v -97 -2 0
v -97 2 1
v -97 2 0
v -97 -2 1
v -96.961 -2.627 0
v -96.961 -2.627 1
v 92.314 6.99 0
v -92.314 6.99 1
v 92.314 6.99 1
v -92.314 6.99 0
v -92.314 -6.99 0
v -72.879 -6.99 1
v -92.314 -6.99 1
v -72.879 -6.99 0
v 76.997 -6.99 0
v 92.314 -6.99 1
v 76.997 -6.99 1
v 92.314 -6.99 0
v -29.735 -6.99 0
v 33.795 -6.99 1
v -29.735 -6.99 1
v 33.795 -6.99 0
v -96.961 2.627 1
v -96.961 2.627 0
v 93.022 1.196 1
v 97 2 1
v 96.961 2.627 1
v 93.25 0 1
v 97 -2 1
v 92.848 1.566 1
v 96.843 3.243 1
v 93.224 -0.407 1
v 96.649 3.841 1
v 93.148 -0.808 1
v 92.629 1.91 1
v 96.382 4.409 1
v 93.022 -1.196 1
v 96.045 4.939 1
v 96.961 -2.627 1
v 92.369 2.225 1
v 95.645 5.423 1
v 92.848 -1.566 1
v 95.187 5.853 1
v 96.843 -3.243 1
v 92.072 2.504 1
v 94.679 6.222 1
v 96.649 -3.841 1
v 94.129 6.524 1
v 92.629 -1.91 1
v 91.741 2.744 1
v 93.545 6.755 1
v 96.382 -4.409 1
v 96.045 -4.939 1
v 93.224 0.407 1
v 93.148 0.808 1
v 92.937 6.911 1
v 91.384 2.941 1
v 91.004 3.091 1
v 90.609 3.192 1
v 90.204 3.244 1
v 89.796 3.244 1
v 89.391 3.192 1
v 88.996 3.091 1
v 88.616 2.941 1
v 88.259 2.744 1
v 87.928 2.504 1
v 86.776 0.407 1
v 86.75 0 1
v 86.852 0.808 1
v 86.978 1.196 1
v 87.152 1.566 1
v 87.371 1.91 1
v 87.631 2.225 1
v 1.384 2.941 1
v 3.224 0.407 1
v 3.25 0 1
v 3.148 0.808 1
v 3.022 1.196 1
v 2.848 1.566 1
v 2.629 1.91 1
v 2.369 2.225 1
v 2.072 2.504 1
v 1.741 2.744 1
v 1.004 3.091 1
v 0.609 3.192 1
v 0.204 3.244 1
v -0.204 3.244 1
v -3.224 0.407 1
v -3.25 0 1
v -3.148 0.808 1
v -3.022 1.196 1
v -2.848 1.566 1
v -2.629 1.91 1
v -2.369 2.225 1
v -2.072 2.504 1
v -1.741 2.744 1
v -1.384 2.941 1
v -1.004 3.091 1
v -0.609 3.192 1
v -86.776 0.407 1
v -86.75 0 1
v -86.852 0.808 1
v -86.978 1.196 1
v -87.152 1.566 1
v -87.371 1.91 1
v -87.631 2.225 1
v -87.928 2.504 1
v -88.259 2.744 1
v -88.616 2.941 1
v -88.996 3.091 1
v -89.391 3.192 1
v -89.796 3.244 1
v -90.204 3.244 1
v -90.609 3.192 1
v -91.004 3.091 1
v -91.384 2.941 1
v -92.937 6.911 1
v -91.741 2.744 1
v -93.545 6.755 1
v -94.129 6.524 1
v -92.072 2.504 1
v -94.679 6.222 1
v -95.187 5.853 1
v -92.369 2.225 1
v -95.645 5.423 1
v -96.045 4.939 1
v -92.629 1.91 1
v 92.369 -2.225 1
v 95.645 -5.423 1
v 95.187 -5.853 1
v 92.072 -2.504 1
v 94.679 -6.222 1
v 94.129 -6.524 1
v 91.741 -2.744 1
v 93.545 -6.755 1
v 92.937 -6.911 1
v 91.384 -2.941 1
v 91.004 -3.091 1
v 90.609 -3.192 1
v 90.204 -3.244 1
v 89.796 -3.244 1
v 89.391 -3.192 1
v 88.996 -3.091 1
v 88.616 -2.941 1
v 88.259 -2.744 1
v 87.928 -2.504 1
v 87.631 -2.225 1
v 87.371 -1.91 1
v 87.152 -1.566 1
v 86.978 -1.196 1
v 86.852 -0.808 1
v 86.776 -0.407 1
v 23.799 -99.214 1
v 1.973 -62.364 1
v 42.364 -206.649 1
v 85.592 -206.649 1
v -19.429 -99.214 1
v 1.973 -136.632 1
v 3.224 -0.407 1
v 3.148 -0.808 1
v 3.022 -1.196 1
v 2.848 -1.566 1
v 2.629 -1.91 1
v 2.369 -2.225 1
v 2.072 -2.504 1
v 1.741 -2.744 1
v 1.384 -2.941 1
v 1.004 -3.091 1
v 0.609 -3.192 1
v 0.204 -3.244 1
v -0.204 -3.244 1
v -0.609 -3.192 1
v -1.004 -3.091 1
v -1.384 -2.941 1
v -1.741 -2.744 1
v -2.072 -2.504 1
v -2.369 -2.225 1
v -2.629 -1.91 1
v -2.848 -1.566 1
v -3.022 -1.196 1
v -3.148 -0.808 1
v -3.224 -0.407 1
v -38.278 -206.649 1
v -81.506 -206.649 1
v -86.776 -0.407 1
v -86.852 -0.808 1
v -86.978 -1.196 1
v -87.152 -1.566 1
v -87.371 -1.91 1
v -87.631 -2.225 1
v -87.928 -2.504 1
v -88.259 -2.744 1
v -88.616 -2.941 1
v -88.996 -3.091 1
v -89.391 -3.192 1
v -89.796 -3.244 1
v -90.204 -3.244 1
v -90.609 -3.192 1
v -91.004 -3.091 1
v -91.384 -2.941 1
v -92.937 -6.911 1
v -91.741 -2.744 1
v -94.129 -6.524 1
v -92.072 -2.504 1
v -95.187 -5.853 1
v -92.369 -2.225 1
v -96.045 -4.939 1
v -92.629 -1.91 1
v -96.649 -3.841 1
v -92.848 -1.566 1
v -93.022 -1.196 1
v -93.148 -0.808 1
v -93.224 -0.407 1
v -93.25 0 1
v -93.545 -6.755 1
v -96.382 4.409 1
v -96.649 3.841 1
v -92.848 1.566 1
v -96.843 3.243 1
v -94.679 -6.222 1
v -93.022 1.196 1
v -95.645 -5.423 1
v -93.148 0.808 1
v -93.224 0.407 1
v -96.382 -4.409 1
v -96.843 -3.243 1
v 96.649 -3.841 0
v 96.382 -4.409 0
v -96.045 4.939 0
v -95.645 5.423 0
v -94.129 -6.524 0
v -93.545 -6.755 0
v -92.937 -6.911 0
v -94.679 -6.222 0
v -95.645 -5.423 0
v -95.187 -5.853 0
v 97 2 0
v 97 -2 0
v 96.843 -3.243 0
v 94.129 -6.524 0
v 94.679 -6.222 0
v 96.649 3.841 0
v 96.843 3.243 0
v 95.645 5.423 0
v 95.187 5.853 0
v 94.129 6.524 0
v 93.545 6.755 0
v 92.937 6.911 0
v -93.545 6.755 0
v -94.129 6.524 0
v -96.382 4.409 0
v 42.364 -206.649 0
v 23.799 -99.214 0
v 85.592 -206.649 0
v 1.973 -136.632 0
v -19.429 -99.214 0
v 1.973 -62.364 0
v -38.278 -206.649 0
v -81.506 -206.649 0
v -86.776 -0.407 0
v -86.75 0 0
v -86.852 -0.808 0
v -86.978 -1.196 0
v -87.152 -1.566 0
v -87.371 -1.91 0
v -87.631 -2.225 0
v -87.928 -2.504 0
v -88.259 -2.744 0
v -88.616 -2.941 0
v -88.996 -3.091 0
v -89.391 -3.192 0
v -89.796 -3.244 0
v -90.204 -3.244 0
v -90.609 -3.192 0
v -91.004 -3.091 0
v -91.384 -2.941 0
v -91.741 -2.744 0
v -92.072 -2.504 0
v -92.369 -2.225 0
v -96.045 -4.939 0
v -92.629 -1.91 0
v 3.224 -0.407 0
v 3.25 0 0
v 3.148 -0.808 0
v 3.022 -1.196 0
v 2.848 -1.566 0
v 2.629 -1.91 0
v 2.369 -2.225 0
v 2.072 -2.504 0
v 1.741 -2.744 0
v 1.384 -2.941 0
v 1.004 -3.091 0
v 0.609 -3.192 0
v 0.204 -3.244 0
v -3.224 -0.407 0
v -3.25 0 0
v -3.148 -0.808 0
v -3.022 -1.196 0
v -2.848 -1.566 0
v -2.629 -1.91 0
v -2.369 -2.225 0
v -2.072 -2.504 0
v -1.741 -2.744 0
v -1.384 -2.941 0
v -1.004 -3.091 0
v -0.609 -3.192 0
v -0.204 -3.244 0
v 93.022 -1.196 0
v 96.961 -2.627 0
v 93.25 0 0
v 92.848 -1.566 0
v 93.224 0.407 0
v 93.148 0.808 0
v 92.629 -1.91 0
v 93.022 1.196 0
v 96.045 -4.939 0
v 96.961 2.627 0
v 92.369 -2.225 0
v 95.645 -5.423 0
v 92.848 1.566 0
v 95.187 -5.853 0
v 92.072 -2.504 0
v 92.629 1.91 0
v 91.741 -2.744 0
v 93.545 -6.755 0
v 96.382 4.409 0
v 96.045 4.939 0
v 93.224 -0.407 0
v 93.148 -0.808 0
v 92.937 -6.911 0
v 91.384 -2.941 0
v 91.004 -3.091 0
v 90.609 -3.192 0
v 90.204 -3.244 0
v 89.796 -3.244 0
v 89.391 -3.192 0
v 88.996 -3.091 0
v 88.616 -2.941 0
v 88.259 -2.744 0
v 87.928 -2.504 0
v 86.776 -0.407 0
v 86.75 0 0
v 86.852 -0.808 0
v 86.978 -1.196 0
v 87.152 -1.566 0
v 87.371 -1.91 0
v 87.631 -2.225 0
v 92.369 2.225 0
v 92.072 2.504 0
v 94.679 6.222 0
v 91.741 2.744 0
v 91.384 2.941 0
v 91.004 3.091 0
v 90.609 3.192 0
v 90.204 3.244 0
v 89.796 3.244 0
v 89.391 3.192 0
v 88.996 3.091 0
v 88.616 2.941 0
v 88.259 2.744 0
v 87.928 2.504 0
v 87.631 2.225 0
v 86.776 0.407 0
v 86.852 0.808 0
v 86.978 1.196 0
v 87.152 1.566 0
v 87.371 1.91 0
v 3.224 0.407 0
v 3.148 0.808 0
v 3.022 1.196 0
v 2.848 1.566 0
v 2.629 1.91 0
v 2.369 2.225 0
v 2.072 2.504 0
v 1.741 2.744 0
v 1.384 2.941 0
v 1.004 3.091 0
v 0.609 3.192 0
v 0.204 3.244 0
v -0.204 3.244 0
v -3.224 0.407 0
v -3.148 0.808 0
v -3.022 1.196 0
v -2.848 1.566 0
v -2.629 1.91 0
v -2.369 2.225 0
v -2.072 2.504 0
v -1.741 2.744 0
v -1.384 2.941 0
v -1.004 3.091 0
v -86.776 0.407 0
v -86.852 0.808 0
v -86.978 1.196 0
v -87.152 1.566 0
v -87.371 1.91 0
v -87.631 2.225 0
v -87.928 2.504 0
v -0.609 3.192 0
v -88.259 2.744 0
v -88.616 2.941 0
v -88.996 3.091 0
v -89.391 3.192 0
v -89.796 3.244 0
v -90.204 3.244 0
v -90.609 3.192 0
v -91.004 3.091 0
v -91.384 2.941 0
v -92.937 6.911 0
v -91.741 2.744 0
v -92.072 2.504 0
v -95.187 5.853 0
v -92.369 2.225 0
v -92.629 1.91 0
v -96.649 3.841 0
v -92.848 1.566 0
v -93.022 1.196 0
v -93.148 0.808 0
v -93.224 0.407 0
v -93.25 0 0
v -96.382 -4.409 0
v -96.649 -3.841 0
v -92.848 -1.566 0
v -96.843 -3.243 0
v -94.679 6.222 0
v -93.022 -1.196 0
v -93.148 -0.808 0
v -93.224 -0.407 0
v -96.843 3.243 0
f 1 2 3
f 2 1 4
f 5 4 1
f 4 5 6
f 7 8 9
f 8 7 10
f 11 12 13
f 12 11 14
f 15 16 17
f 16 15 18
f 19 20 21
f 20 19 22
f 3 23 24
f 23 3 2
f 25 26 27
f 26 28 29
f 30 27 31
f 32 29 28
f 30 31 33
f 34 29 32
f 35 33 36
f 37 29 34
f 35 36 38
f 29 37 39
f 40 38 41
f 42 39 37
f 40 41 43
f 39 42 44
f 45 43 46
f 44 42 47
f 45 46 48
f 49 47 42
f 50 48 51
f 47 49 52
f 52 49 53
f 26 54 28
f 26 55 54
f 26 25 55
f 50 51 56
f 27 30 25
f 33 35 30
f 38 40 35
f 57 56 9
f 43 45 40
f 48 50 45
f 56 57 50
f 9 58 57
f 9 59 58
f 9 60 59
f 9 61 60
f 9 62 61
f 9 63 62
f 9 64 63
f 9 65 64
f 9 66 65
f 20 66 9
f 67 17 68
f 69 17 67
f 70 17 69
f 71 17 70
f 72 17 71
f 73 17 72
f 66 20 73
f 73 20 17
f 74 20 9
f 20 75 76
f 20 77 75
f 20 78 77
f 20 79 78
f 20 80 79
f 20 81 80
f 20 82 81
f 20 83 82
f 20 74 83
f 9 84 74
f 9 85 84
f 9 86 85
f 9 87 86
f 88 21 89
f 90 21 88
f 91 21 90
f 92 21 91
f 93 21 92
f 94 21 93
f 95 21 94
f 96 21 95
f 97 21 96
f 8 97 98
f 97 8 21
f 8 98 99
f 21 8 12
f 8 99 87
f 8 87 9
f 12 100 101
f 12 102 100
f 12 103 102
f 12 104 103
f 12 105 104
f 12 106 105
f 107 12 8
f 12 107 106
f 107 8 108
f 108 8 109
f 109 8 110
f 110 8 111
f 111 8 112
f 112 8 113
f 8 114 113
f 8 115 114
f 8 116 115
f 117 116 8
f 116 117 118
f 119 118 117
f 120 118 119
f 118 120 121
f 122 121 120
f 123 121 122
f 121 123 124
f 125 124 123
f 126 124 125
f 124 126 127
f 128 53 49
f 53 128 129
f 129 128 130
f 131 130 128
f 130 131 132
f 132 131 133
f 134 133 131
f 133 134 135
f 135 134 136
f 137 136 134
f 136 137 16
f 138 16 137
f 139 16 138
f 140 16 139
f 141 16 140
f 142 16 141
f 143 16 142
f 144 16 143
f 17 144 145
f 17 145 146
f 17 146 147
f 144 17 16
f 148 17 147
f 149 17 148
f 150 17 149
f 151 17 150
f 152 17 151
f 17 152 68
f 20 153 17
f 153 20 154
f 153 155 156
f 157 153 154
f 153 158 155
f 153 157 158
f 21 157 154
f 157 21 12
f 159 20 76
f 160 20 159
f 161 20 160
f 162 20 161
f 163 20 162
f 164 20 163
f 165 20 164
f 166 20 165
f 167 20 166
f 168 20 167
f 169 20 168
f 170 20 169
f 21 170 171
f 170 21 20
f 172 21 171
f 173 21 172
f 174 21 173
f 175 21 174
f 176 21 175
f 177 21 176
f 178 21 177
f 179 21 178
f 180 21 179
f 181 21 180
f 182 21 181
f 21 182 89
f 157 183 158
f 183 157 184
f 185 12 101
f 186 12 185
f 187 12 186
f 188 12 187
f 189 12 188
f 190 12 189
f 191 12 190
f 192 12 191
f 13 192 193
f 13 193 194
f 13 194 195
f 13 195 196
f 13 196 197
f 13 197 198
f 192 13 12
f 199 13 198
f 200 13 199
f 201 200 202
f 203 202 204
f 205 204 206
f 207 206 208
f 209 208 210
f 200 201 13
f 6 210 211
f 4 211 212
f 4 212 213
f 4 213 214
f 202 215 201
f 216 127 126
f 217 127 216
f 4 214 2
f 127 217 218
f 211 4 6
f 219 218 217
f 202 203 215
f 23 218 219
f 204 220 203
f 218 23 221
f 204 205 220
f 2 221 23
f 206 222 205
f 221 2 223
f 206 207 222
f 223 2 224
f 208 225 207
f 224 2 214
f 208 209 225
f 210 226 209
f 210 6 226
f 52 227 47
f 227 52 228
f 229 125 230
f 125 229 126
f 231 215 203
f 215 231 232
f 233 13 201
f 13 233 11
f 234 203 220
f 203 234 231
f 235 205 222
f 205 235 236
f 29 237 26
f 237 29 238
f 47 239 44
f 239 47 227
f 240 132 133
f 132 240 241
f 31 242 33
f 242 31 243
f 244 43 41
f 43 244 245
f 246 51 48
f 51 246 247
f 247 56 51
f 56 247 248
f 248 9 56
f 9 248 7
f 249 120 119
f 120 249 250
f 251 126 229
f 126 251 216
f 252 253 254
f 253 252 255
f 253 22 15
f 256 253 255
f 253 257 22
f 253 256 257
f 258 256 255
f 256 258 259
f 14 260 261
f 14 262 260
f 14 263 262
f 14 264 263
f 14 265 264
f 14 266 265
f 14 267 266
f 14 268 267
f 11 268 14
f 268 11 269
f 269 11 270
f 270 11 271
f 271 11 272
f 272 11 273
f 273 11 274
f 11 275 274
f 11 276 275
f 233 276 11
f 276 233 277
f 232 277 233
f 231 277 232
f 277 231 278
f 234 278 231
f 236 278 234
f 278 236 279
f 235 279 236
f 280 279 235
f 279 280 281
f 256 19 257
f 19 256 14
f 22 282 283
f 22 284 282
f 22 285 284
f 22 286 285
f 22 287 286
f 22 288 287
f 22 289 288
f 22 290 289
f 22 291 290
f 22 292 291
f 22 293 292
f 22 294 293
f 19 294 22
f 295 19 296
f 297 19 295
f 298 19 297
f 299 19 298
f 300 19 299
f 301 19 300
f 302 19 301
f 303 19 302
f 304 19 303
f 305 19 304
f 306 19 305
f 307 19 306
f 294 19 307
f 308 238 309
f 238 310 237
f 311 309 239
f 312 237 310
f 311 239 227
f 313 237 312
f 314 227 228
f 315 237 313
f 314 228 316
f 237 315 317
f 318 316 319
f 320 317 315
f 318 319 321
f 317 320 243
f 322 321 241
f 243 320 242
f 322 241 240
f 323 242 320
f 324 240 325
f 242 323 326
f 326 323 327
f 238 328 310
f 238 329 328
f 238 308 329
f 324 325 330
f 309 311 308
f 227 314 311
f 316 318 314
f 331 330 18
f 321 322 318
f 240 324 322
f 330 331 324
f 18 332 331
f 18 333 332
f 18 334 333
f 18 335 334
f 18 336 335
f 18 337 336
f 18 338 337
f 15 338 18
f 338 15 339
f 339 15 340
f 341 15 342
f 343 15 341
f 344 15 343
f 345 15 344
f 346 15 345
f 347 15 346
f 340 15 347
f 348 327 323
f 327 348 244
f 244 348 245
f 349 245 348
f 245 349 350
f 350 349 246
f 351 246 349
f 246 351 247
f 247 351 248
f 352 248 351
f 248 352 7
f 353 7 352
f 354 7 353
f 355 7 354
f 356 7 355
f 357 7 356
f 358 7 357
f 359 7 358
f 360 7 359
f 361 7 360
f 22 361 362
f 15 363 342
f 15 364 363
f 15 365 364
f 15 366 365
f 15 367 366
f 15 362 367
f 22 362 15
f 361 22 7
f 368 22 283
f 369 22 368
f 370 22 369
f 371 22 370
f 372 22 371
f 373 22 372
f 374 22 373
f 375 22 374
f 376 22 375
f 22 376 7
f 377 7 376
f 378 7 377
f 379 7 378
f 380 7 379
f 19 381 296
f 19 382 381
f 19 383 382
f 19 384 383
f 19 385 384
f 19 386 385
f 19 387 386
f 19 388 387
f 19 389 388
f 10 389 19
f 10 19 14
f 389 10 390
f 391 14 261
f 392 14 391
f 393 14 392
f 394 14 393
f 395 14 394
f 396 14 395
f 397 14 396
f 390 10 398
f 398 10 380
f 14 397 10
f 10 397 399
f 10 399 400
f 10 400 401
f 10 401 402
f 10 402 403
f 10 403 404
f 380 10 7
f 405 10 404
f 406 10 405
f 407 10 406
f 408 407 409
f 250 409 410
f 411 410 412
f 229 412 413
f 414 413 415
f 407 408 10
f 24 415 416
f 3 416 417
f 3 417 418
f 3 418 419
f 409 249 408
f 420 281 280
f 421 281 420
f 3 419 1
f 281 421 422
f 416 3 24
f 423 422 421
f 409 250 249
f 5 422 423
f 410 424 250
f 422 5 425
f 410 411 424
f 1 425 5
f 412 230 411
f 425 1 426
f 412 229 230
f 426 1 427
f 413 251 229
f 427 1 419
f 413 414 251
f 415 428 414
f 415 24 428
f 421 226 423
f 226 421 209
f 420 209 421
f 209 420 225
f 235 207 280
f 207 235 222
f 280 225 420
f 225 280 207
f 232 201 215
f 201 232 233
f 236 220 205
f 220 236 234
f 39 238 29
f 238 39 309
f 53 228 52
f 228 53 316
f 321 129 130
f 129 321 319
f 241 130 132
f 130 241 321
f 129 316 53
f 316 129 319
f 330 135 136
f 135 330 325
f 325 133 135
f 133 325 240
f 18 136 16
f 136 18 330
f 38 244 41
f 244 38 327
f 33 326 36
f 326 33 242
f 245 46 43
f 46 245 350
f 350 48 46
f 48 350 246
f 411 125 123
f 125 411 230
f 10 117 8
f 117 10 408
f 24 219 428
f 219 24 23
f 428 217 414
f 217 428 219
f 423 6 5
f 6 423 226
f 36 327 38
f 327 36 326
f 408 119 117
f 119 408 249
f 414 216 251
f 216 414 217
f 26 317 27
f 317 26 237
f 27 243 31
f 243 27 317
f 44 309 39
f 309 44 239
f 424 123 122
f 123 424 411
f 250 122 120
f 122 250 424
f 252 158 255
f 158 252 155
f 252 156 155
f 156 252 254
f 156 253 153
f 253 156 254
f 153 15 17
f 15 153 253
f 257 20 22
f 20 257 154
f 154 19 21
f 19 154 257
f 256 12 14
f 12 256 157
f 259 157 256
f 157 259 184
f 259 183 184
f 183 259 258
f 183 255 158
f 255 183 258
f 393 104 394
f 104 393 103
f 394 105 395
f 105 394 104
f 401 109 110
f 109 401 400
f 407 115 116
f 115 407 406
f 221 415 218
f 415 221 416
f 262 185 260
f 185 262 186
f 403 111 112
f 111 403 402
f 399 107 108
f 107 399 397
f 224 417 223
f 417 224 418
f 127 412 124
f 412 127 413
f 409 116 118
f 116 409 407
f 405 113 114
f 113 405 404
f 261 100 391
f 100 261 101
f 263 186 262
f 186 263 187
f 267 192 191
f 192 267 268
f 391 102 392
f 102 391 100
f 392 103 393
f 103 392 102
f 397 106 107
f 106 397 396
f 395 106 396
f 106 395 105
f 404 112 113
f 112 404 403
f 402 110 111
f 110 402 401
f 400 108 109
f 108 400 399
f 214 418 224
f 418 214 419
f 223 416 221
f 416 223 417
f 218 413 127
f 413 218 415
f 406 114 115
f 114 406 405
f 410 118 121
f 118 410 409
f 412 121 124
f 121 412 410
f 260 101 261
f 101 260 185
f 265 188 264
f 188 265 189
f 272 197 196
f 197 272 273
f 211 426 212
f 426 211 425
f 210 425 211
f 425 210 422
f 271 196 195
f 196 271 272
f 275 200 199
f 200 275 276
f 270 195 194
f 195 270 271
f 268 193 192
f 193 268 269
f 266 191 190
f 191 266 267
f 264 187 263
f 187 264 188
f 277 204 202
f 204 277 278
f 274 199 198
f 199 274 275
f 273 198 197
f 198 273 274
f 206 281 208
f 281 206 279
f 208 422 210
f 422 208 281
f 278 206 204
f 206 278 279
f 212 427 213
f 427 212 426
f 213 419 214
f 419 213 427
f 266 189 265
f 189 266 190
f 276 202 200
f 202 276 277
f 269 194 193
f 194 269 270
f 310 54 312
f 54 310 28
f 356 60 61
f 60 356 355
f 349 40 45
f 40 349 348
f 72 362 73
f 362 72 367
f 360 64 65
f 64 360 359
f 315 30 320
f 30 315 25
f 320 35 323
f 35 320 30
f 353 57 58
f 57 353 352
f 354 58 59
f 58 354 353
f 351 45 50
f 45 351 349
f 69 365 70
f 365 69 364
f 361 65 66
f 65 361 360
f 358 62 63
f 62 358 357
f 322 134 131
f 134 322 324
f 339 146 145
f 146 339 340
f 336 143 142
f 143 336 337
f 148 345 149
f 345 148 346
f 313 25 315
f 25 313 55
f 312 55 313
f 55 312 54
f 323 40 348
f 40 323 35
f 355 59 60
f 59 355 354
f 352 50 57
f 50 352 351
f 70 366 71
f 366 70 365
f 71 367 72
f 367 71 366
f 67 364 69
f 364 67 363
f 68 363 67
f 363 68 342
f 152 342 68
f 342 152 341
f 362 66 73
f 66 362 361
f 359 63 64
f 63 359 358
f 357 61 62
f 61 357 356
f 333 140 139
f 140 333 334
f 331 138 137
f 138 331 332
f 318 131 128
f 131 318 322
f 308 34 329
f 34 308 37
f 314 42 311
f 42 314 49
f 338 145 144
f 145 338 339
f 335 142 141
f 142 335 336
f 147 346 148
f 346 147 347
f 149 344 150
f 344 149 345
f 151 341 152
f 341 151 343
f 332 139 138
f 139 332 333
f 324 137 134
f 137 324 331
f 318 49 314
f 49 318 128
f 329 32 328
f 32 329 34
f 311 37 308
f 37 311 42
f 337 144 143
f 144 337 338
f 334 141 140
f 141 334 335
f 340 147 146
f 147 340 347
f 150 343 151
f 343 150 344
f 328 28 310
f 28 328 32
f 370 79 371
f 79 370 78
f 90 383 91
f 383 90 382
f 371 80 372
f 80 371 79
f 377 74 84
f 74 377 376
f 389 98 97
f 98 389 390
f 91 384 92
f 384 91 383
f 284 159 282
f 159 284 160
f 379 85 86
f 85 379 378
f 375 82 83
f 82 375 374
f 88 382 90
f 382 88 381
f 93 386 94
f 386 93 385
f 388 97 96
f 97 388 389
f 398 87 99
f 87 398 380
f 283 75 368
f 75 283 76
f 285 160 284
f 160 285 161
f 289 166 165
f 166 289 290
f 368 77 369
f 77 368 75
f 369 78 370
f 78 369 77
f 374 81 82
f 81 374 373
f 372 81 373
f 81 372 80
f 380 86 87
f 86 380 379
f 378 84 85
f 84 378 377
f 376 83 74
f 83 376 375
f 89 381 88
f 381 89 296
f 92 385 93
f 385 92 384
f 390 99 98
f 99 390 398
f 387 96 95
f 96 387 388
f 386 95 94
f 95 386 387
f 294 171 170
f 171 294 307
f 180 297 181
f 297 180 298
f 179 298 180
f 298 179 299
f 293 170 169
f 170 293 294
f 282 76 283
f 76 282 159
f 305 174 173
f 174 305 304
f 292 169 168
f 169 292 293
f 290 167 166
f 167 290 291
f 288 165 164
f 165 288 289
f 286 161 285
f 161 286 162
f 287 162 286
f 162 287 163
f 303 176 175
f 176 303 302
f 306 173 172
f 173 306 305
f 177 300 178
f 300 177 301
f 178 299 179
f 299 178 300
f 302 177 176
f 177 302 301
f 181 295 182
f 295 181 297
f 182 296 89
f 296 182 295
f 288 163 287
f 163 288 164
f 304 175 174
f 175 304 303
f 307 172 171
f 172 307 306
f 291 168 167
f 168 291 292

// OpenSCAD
$fn = 50;


difference() {
	union() {
		translate(v = [0, 0, 0]) {
			rotate(a = [0, 0, 0]) {
				hull() {
					translate(v = [-92.0000000000, 2.0000000000, 0]) {
						rotate(a = [0, 0, 0]) {
							translate(v = [0, 0, 0]) {
								rotate(a = [0, 0, 0]) {
									cylinder(h = 1, r = 5);
								}
							}
						}
					}
					translate(v = [92.0000000000, 2.0000000000, 0]) {
						rotate(a = [0, 0, 0]) {
							translate(v = [0, 0, 0]) {
								rotate(a = [0, 0, 0]) {
									cylinder(h = 1, r = 5);
								}
							}
						}
					}
					translate(v = [-92.0000000000, -2.0000000000, 0]) {
						rotate(a = [0, 0, 0]) {
							translate(v = [0, 0, 0]) {
								rotate(a = [0, 0, 0]) {
									cylinder(h = 1, r = 5);
								}
							}
						}
					}
					translate(v = [92.0000000000, -2.0000000000, 0]) {
						rotate(a = [0, 0, 0]) {
							translate(v = [0, 0, 0]) {
								rotate(a = [0, 0, 0]) {
									cylinder(h = 1, r = 5);
								}
							}
						}
					}
				}
			}
		}
		translate(v = [0, 0, 0]) {
			rotate(a = [0, 0, 0]) {
				linear_extrude(height = 1) {
					text(font = "DejaVu Sans Mono:style=Bold", halign = "center", size = 209.0000000000, text = "X", valign = "top");
				}
			}
		}
	}
	union() {
		translate(v = [-90.0000000000, 0.0000000000, -125.0000000000]) {
			rotate(a = [0, 0, 0]) {
				cylinder(h = 250, r = 3.2500000000);
			}
		}
		translate(v = [90.0000000000, 0.0000000000, -125.0000000000]) {
			rotate(a = [0, 0, 0]) {
				cylinder(h = 250, r = 3.2500000000);
			}
		}
		translate(v = [90.0000000000, 0.0000000000, -125.0000000000]) {
			rotate(a = [0, 0, 0]) {
				cylinder(h = 250, r = 3.2500000000);
			}
		}
		translate(v = [0, 0, -125.0000000000]) {
			rotate(a = [0, 0, 0]) {
				cylinder(h = 250, r = 3.2500000000);
			}
		}
	}
}
